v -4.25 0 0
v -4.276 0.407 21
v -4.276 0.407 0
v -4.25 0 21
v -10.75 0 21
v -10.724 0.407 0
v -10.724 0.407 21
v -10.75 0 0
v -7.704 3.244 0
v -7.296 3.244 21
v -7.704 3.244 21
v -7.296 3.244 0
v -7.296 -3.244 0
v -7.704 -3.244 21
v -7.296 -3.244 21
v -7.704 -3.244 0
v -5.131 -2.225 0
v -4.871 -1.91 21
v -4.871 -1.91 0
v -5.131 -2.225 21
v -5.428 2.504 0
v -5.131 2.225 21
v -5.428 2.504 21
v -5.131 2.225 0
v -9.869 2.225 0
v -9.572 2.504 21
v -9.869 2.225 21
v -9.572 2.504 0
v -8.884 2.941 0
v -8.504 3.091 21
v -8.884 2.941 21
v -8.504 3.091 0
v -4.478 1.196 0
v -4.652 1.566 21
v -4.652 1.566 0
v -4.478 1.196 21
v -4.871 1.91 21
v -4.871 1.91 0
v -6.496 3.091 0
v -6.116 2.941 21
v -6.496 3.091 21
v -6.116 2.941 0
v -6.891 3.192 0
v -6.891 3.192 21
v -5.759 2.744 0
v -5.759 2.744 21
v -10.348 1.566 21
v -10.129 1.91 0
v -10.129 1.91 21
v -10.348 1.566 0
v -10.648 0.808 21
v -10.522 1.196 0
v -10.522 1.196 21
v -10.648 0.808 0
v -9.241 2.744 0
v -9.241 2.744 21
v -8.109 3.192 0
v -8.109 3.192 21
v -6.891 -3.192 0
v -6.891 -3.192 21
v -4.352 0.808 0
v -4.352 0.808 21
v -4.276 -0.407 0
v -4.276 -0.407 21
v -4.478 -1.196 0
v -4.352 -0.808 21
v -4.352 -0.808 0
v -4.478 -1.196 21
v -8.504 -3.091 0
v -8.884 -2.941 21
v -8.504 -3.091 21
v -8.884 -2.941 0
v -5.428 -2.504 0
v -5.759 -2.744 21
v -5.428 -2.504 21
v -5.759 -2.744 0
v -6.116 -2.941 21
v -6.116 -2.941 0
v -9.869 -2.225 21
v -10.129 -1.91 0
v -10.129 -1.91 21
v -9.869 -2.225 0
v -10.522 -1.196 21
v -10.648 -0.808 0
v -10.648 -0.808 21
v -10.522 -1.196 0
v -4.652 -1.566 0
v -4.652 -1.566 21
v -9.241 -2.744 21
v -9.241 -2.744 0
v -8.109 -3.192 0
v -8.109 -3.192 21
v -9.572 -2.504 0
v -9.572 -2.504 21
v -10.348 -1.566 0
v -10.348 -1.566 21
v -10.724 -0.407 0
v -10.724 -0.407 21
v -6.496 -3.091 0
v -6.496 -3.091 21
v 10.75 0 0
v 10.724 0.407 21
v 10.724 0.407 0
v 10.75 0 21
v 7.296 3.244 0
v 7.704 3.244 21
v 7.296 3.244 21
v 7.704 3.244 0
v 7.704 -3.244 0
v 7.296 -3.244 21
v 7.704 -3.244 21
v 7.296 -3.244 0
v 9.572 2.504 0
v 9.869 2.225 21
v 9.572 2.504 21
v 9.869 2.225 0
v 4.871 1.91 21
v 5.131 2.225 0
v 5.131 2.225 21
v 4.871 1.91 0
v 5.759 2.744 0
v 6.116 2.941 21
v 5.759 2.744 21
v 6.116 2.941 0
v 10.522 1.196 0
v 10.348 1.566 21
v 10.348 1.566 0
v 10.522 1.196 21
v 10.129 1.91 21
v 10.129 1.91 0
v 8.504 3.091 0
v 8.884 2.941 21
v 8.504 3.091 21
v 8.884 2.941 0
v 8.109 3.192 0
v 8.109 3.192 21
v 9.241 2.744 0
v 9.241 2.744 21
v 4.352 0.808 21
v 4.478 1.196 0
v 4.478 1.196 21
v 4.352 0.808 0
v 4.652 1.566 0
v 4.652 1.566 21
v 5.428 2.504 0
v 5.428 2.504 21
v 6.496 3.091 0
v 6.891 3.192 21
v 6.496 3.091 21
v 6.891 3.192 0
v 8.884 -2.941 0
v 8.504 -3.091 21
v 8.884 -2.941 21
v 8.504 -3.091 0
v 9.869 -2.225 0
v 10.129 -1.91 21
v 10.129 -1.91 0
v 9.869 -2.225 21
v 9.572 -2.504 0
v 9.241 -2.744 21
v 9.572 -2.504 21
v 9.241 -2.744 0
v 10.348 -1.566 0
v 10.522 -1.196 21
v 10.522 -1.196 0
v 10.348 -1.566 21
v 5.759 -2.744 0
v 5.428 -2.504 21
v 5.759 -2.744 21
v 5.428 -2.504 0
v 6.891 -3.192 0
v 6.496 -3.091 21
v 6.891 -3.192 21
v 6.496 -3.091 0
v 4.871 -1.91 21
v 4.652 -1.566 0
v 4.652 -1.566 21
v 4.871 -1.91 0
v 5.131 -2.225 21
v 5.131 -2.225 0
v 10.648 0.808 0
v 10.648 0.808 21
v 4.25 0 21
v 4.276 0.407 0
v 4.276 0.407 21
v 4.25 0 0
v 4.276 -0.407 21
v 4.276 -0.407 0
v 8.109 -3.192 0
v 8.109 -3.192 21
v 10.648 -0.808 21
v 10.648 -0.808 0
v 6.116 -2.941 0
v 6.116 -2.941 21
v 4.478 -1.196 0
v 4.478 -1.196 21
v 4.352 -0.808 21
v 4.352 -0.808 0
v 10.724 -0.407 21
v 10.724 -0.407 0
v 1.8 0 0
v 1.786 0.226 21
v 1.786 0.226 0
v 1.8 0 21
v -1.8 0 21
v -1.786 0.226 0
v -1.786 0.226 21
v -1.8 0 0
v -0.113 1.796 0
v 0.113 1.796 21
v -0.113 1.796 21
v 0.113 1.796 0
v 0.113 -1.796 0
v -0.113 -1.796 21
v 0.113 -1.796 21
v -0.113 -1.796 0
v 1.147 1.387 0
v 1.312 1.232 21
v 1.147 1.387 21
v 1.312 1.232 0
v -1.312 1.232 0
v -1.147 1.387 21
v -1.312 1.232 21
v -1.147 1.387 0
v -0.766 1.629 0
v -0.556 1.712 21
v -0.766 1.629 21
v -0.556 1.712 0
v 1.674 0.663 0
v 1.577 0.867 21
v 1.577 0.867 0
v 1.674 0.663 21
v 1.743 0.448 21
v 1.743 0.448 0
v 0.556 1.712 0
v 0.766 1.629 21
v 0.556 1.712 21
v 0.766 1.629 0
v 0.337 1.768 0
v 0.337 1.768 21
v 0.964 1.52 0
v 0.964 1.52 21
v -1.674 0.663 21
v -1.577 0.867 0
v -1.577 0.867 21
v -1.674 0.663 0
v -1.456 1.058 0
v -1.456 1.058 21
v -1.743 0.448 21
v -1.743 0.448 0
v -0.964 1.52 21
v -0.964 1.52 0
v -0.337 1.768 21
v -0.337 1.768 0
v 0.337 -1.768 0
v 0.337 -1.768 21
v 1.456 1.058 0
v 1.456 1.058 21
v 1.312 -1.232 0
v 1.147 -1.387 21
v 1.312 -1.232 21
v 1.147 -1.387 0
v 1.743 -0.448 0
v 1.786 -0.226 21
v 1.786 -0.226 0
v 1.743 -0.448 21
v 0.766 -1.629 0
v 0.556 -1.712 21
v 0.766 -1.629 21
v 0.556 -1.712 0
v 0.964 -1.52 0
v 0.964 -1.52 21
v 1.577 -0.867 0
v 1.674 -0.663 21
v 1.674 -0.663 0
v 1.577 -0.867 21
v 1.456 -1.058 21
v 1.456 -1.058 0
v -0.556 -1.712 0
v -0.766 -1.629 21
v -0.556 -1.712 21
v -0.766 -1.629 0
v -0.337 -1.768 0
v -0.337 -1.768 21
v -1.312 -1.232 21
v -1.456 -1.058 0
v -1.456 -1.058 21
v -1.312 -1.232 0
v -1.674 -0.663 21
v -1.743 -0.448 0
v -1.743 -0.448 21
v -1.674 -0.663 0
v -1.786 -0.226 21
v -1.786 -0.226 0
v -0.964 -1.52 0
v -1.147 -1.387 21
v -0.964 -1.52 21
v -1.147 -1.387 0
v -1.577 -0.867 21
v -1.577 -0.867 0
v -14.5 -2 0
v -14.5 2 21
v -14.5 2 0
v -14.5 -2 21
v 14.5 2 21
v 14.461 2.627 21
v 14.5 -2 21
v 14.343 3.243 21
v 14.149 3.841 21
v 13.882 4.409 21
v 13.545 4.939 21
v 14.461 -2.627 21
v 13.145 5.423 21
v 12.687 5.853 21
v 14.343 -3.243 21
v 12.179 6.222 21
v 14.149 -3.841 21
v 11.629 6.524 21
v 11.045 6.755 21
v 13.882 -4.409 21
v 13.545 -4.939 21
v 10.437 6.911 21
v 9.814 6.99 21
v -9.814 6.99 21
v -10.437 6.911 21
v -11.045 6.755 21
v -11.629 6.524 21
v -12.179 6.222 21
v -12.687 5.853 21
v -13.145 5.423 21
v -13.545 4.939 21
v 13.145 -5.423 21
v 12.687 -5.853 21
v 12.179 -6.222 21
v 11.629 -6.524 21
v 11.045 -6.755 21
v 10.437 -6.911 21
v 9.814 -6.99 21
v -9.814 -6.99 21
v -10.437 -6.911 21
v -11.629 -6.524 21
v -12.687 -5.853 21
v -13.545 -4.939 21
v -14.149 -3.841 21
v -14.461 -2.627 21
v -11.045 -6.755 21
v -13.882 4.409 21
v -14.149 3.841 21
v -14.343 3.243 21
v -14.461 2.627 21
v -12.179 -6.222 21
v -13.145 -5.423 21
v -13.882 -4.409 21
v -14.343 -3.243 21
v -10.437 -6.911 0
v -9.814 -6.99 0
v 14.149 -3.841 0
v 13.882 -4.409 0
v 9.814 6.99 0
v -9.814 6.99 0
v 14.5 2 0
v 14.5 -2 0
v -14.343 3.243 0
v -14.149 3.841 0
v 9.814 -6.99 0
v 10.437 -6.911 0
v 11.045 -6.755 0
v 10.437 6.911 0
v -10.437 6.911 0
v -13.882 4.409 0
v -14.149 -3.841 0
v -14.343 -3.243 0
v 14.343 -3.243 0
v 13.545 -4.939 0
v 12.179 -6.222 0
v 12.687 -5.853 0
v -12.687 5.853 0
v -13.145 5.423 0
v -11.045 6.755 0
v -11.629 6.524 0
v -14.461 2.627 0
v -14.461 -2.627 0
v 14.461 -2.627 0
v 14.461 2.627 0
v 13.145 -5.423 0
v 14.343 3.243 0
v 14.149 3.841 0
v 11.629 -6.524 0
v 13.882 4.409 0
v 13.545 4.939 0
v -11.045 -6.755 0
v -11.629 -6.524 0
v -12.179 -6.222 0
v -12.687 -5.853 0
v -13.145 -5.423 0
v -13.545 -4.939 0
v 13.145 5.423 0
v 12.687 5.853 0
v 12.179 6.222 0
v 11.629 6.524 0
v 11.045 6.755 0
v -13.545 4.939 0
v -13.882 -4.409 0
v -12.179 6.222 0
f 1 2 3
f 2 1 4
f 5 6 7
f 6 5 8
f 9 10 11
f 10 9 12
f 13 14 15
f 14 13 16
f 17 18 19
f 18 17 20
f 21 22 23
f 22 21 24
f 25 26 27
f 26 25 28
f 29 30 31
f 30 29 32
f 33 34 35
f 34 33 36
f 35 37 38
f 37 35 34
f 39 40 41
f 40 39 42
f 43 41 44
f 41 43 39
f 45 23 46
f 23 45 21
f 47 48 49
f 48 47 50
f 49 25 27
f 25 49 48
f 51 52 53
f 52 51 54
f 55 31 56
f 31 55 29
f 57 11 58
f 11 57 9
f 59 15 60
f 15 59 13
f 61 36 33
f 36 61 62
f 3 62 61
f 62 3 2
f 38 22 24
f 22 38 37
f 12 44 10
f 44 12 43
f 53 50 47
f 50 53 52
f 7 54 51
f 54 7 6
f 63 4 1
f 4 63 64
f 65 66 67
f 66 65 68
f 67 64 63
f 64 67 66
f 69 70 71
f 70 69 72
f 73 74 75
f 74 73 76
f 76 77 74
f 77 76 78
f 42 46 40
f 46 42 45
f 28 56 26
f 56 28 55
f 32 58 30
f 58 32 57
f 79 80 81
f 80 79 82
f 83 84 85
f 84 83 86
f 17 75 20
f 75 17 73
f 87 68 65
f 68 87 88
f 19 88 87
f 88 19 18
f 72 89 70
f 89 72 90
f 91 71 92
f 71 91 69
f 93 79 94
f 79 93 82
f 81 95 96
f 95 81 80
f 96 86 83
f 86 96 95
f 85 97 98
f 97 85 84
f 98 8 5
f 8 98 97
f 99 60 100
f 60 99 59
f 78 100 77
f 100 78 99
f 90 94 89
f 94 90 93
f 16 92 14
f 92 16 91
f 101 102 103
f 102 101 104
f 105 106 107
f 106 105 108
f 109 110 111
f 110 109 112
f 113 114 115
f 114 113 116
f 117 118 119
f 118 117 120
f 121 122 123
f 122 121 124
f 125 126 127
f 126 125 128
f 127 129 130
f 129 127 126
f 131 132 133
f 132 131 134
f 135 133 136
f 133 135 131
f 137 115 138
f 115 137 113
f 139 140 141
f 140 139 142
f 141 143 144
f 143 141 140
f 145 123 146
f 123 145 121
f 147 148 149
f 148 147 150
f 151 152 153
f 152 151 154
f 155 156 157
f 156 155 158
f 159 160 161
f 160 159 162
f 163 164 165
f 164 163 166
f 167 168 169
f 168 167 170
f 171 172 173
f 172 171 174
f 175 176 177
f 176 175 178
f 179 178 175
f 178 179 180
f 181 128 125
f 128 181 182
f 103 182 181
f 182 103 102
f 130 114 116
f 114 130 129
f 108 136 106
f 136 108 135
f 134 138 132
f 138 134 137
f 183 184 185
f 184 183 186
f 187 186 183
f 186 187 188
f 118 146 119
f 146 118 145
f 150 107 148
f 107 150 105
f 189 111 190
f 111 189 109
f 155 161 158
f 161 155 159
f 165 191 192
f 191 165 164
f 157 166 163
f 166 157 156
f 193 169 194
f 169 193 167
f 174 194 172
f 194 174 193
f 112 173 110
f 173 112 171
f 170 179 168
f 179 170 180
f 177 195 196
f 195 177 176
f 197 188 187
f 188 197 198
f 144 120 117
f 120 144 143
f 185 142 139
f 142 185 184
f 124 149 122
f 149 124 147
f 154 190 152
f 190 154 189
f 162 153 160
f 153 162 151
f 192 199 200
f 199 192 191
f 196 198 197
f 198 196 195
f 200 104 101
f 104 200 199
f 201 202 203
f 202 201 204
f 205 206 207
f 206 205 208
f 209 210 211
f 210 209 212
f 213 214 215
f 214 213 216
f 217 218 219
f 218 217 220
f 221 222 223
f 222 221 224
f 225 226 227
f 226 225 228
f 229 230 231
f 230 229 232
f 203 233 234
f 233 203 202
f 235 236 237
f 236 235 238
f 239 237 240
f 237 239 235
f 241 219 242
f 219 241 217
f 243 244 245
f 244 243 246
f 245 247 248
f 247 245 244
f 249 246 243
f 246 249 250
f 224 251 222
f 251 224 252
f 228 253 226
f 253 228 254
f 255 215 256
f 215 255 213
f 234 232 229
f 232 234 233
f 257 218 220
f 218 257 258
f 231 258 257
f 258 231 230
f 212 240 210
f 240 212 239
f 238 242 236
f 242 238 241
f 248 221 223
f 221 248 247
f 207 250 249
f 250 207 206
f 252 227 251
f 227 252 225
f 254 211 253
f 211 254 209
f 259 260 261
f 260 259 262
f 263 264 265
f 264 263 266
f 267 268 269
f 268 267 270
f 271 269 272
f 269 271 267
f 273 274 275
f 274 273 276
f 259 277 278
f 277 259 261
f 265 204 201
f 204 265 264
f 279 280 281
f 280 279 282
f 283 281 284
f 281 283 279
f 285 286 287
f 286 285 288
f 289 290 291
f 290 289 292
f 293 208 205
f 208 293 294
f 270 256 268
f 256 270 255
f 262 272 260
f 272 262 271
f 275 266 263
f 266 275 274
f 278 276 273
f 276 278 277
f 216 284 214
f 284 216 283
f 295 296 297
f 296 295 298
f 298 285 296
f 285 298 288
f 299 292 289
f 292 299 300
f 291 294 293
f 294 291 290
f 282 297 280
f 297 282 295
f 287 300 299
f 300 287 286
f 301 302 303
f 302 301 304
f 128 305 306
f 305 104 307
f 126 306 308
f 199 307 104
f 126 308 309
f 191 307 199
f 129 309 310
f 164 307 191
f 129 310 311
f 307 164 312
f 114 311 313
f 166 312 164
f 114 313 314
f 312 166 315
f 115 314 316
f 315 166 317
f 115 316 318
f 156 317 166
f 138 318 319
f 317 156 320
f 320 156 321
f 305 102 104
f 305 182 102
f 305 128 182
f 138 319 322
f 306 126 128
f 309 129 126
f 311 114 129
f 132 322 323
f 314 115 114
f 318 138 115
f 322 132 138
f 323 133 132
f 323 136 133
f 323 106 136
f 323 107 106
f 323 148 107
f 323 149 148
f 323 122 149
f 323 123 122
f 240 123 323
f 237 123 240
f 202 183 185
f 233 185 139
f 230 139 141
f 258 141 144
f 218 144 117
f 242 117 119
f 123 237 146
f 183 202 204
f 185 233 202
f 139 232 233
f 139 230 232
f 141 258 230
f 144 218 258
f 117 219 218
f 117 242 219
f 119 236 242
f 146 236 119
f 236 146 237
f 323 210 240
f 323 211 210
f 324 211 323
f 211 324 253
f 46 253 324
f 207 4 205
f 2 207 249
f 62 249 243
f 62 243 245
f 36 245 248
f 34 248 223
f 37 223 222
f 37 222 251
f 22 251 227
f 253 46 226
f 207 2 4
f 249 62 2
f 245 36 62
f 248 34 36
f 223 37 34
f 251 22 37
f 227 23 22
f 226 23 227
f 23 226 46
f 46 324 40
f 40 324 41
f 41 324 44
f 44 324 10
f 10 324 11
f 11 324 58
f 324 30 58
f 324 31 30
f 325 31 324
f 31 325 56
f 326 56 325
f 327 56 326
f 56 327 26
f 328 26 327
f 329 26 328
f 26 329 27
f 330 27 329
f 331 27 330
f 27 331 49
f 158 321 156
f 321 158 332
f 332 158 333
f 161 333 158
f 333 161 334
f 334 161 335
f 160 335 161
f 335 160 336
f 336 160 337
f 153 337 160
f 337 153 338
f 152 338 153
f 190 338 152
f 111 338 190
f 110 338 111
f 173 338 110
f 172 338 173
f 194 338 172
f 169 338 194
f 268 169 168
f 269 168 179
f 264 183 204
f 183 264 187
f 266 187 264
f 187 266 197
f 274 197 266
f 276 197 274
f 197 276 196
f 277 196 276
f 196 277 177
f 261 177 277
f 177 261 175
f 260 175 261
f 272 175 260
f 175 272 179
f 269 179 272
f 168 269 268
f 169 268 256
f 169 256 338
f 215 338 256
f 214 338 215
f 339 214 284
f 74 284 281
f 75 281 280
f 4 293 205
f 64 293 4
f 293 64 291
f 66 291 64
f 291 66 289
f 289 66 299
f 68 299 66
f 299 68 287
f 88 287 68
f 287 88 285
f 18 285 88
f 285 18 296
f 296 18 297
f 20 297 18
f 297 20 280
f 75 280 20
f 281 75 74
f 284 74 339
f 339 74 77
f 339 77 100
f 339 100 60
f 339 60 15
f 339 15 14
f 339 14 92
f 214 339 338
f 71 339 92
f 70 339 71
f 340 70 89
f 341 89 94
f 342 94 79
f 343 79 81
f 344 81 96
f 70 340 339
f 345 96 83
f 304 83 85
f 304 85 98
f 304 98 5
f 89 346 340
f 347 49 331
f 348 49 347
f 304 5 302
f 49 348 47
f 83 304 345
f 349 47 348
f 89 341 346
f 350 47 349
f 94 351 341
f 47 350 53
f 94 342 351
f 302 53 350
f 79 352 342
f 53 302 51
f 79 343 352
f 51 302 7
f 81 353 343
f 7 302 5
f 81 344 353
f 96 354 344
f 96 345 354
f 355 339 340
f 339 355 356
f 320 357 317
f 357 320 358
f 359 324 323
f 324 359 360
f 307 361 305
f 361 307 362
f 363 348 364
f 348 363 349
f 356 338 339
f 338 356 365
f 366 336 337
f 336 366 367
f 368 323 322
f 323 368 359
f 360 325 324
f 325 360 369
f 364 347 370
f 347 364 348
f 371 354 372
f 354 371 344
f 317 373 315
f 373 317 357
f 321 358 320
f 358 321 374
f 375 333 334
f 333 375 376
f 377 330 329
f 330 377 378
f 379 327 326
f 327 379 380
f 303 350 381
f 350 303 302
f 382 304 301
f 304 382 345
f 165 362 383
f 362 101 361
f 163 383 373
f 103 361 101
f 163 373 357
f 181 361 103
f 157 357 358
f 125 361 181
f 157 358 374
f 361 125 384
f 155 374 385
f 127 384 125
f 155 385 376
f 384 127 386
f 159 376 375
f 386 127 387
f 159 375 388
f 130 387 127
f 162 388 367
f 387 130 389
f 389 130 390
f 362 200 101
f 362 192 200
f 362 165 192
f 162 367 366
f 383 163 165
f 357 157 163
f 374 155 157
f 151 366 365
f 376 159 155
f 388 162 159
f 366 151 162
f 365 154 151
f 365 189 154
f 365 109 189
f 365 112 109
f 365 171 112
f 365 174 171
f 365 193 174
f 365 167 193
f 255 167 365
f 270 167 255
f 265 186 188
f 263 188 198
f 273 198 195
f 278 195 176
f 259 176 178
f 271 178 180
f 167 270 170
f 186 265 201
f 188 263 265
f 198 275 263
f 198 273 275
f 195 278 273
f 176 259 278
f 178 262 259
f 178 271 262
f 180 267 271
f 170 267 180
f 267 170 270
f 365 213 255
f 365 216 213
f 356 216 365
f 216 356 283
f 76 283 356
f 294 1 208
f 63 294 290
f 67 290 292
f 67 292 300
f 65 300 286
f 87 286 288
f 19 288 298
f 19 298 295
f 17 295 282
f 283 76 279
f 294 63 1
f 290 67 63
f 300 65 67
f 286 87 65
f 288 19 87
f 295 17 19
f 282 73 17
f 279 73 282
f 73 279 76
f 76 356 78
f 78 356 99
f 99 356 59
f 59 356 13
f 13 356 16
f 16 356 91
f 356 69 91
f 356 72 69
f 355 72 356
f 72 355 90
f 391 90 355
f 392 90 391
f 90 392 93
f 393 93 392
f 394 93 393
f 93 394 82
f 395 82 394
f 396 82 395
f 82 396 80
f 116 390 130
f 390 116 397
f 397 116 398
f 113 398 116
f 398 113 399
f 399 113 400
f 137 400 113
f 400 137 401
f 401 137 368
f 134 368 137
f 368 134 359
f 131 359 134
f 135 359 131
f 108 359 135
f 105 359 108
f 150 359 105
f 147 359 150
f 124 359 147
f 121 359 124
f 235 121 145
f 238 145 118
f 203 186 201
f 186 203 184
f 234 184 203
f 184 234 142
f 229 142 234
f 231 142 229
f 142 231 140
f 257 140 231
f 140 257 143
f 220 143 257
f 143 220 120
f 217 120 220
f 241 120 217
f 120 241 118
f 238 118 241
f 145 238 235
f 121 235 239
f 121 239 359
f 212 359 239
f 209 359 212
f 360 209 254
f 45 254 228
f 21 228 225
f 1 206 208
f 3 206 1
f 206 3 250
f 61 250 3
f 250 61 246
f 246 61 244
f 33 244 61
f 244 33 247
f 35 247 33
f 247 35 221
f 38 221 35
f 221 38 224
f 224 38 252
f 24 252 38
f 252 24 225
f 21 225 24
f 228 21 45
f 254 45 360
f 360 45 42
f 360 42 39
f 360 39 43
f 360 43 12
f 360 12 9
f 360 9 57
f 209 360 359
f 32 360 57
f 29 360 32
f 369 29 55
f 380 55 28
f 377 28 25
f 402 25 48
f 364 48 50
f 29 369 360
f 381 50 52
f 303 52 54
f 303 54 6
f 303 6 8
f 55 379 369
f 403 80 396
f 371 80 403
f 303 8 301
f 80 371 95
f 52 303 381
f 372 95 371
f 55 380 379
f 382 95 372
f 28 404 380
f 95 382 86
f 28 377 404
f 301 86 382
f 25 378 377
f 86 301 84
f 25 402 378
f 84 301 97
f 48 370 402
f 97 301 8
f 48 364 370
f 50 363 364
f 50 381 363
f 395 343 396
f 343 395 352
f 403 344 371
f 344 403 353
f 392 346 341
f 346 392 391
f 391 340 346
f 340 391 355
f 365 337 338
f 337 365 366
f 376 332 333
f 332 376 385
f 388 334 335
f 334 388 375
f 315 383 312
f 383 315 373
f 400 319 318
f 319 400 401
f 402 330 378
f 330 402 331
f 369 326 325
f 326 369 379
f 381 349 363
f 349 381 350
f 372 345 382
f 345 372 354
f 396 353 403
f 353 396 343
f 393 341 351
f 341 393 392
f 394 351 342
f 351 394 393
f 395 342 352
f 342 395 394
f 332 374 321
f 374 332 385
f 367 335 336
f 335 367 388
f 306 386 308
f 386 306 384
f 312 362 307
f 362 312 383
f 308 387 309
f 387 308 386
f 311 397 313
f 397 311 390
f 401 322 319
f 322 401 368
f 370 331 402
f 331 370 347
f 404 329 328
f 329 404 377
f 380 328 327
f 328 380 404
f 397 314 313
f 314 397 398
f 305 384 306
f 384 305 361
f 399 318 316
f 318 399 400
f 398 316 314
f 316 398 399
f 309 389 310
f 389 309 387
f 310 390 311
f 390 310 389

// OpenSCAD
$fn = 50;


difference() {
	union() {
		translate(v = [0, 0, 0]) {
			rotate(a = [0, 0, 0]) {
				hull() {
					translate(v = [-9.5000000000, 2.0000000000, 0]) {
						rotate(a = [0, 0, 0]) {
							translate(v = [0, 0, 0]) {
								rotate(a = [0, 0, 0]) {
									cylinder(h = 21, r = 5);
								}
							}
						}
					}
					translate(v = [9.5000000000, 2.0000000000, 0]) {
						rotate(a = [0, 0, 0]) {
							translate(v = [0, 0, 0]) {
								rotate(a = [0, 0, 0]) {
									cylinder(h = 21, r = 5);
								}
							}
						}
					}
					translate(v = [-9.5000000000, -2.0000000000, 0]) {
						rotate(a = [0, 0, 0]) {
							translate(v = [0, 0, 0]) {
								rotate(a = [0, 0, 0]) {
									cylinder(h = 21, r = 5);
								}
							}
						}
					}
					translate(v = [9.5000000000, -2.0000000000, 0]) {
						rotate(a = [0, 0, 0]) {
							translate(v = [0, 0, 0]) {
								rotate(a = [0, 0, 0]) {
									cylinder(h = 21, r = 5);
								}
							}
						}
					}
				}
			}
		}
	}
	union() {
		translate(v = [-7.5000000000, 0.0000000000, 0]) {
			rotate(a = [0, 0, 0]) {
				translate(v = [0, 0, -50]) {
					rotate(a = [0, 0, 0]) {
						cylinder(h = 100, r = 3.2500000000);
					}
				}
			}
		}
		translate(v = [7.5000000000, 0.0000000000, 0]) {
			rotate(a = [0, 0, 0]) {
				translate(v = [0, 0, -50]) {
					rotate(a = [0, 0, 0]) {
						cylinder(h = 100, r = 3.2500000000);
					}
				}
			}
		}
		translate(v = [-7.5000000000, 0.0000000000, 0]) {
			rotate(a = [0, 0, 0]) {
				translate(v = [0, 0, -50]) {
					rotate(a = [0, 0, 0]) {
						cylinder(h = 100, r = 1.8000000000);
					}
				}
			}
		}
		translate(v = [0.0000000000, 0.0000000000, 0]) {
			rotate(a = [0, 0, 0]) {
				translate(v = [0, 0, -50]) {
					rotate(a = [0, 0, 0]) {
						cylinder(h = 100, r = 1.8000000000);
					}
				}
			}
		}
		translate(v = [7.5000000000, 0.0000000000, 0]) {
			rotate(a = [0, 0, 0]) {
				translate(v = [0, 0, -50]) {
					rotate(a = [0, 0, 0]) {
						cylinder(h = 100, r = 1.8000000000);
					}
				}
			}
		}
	}
}
